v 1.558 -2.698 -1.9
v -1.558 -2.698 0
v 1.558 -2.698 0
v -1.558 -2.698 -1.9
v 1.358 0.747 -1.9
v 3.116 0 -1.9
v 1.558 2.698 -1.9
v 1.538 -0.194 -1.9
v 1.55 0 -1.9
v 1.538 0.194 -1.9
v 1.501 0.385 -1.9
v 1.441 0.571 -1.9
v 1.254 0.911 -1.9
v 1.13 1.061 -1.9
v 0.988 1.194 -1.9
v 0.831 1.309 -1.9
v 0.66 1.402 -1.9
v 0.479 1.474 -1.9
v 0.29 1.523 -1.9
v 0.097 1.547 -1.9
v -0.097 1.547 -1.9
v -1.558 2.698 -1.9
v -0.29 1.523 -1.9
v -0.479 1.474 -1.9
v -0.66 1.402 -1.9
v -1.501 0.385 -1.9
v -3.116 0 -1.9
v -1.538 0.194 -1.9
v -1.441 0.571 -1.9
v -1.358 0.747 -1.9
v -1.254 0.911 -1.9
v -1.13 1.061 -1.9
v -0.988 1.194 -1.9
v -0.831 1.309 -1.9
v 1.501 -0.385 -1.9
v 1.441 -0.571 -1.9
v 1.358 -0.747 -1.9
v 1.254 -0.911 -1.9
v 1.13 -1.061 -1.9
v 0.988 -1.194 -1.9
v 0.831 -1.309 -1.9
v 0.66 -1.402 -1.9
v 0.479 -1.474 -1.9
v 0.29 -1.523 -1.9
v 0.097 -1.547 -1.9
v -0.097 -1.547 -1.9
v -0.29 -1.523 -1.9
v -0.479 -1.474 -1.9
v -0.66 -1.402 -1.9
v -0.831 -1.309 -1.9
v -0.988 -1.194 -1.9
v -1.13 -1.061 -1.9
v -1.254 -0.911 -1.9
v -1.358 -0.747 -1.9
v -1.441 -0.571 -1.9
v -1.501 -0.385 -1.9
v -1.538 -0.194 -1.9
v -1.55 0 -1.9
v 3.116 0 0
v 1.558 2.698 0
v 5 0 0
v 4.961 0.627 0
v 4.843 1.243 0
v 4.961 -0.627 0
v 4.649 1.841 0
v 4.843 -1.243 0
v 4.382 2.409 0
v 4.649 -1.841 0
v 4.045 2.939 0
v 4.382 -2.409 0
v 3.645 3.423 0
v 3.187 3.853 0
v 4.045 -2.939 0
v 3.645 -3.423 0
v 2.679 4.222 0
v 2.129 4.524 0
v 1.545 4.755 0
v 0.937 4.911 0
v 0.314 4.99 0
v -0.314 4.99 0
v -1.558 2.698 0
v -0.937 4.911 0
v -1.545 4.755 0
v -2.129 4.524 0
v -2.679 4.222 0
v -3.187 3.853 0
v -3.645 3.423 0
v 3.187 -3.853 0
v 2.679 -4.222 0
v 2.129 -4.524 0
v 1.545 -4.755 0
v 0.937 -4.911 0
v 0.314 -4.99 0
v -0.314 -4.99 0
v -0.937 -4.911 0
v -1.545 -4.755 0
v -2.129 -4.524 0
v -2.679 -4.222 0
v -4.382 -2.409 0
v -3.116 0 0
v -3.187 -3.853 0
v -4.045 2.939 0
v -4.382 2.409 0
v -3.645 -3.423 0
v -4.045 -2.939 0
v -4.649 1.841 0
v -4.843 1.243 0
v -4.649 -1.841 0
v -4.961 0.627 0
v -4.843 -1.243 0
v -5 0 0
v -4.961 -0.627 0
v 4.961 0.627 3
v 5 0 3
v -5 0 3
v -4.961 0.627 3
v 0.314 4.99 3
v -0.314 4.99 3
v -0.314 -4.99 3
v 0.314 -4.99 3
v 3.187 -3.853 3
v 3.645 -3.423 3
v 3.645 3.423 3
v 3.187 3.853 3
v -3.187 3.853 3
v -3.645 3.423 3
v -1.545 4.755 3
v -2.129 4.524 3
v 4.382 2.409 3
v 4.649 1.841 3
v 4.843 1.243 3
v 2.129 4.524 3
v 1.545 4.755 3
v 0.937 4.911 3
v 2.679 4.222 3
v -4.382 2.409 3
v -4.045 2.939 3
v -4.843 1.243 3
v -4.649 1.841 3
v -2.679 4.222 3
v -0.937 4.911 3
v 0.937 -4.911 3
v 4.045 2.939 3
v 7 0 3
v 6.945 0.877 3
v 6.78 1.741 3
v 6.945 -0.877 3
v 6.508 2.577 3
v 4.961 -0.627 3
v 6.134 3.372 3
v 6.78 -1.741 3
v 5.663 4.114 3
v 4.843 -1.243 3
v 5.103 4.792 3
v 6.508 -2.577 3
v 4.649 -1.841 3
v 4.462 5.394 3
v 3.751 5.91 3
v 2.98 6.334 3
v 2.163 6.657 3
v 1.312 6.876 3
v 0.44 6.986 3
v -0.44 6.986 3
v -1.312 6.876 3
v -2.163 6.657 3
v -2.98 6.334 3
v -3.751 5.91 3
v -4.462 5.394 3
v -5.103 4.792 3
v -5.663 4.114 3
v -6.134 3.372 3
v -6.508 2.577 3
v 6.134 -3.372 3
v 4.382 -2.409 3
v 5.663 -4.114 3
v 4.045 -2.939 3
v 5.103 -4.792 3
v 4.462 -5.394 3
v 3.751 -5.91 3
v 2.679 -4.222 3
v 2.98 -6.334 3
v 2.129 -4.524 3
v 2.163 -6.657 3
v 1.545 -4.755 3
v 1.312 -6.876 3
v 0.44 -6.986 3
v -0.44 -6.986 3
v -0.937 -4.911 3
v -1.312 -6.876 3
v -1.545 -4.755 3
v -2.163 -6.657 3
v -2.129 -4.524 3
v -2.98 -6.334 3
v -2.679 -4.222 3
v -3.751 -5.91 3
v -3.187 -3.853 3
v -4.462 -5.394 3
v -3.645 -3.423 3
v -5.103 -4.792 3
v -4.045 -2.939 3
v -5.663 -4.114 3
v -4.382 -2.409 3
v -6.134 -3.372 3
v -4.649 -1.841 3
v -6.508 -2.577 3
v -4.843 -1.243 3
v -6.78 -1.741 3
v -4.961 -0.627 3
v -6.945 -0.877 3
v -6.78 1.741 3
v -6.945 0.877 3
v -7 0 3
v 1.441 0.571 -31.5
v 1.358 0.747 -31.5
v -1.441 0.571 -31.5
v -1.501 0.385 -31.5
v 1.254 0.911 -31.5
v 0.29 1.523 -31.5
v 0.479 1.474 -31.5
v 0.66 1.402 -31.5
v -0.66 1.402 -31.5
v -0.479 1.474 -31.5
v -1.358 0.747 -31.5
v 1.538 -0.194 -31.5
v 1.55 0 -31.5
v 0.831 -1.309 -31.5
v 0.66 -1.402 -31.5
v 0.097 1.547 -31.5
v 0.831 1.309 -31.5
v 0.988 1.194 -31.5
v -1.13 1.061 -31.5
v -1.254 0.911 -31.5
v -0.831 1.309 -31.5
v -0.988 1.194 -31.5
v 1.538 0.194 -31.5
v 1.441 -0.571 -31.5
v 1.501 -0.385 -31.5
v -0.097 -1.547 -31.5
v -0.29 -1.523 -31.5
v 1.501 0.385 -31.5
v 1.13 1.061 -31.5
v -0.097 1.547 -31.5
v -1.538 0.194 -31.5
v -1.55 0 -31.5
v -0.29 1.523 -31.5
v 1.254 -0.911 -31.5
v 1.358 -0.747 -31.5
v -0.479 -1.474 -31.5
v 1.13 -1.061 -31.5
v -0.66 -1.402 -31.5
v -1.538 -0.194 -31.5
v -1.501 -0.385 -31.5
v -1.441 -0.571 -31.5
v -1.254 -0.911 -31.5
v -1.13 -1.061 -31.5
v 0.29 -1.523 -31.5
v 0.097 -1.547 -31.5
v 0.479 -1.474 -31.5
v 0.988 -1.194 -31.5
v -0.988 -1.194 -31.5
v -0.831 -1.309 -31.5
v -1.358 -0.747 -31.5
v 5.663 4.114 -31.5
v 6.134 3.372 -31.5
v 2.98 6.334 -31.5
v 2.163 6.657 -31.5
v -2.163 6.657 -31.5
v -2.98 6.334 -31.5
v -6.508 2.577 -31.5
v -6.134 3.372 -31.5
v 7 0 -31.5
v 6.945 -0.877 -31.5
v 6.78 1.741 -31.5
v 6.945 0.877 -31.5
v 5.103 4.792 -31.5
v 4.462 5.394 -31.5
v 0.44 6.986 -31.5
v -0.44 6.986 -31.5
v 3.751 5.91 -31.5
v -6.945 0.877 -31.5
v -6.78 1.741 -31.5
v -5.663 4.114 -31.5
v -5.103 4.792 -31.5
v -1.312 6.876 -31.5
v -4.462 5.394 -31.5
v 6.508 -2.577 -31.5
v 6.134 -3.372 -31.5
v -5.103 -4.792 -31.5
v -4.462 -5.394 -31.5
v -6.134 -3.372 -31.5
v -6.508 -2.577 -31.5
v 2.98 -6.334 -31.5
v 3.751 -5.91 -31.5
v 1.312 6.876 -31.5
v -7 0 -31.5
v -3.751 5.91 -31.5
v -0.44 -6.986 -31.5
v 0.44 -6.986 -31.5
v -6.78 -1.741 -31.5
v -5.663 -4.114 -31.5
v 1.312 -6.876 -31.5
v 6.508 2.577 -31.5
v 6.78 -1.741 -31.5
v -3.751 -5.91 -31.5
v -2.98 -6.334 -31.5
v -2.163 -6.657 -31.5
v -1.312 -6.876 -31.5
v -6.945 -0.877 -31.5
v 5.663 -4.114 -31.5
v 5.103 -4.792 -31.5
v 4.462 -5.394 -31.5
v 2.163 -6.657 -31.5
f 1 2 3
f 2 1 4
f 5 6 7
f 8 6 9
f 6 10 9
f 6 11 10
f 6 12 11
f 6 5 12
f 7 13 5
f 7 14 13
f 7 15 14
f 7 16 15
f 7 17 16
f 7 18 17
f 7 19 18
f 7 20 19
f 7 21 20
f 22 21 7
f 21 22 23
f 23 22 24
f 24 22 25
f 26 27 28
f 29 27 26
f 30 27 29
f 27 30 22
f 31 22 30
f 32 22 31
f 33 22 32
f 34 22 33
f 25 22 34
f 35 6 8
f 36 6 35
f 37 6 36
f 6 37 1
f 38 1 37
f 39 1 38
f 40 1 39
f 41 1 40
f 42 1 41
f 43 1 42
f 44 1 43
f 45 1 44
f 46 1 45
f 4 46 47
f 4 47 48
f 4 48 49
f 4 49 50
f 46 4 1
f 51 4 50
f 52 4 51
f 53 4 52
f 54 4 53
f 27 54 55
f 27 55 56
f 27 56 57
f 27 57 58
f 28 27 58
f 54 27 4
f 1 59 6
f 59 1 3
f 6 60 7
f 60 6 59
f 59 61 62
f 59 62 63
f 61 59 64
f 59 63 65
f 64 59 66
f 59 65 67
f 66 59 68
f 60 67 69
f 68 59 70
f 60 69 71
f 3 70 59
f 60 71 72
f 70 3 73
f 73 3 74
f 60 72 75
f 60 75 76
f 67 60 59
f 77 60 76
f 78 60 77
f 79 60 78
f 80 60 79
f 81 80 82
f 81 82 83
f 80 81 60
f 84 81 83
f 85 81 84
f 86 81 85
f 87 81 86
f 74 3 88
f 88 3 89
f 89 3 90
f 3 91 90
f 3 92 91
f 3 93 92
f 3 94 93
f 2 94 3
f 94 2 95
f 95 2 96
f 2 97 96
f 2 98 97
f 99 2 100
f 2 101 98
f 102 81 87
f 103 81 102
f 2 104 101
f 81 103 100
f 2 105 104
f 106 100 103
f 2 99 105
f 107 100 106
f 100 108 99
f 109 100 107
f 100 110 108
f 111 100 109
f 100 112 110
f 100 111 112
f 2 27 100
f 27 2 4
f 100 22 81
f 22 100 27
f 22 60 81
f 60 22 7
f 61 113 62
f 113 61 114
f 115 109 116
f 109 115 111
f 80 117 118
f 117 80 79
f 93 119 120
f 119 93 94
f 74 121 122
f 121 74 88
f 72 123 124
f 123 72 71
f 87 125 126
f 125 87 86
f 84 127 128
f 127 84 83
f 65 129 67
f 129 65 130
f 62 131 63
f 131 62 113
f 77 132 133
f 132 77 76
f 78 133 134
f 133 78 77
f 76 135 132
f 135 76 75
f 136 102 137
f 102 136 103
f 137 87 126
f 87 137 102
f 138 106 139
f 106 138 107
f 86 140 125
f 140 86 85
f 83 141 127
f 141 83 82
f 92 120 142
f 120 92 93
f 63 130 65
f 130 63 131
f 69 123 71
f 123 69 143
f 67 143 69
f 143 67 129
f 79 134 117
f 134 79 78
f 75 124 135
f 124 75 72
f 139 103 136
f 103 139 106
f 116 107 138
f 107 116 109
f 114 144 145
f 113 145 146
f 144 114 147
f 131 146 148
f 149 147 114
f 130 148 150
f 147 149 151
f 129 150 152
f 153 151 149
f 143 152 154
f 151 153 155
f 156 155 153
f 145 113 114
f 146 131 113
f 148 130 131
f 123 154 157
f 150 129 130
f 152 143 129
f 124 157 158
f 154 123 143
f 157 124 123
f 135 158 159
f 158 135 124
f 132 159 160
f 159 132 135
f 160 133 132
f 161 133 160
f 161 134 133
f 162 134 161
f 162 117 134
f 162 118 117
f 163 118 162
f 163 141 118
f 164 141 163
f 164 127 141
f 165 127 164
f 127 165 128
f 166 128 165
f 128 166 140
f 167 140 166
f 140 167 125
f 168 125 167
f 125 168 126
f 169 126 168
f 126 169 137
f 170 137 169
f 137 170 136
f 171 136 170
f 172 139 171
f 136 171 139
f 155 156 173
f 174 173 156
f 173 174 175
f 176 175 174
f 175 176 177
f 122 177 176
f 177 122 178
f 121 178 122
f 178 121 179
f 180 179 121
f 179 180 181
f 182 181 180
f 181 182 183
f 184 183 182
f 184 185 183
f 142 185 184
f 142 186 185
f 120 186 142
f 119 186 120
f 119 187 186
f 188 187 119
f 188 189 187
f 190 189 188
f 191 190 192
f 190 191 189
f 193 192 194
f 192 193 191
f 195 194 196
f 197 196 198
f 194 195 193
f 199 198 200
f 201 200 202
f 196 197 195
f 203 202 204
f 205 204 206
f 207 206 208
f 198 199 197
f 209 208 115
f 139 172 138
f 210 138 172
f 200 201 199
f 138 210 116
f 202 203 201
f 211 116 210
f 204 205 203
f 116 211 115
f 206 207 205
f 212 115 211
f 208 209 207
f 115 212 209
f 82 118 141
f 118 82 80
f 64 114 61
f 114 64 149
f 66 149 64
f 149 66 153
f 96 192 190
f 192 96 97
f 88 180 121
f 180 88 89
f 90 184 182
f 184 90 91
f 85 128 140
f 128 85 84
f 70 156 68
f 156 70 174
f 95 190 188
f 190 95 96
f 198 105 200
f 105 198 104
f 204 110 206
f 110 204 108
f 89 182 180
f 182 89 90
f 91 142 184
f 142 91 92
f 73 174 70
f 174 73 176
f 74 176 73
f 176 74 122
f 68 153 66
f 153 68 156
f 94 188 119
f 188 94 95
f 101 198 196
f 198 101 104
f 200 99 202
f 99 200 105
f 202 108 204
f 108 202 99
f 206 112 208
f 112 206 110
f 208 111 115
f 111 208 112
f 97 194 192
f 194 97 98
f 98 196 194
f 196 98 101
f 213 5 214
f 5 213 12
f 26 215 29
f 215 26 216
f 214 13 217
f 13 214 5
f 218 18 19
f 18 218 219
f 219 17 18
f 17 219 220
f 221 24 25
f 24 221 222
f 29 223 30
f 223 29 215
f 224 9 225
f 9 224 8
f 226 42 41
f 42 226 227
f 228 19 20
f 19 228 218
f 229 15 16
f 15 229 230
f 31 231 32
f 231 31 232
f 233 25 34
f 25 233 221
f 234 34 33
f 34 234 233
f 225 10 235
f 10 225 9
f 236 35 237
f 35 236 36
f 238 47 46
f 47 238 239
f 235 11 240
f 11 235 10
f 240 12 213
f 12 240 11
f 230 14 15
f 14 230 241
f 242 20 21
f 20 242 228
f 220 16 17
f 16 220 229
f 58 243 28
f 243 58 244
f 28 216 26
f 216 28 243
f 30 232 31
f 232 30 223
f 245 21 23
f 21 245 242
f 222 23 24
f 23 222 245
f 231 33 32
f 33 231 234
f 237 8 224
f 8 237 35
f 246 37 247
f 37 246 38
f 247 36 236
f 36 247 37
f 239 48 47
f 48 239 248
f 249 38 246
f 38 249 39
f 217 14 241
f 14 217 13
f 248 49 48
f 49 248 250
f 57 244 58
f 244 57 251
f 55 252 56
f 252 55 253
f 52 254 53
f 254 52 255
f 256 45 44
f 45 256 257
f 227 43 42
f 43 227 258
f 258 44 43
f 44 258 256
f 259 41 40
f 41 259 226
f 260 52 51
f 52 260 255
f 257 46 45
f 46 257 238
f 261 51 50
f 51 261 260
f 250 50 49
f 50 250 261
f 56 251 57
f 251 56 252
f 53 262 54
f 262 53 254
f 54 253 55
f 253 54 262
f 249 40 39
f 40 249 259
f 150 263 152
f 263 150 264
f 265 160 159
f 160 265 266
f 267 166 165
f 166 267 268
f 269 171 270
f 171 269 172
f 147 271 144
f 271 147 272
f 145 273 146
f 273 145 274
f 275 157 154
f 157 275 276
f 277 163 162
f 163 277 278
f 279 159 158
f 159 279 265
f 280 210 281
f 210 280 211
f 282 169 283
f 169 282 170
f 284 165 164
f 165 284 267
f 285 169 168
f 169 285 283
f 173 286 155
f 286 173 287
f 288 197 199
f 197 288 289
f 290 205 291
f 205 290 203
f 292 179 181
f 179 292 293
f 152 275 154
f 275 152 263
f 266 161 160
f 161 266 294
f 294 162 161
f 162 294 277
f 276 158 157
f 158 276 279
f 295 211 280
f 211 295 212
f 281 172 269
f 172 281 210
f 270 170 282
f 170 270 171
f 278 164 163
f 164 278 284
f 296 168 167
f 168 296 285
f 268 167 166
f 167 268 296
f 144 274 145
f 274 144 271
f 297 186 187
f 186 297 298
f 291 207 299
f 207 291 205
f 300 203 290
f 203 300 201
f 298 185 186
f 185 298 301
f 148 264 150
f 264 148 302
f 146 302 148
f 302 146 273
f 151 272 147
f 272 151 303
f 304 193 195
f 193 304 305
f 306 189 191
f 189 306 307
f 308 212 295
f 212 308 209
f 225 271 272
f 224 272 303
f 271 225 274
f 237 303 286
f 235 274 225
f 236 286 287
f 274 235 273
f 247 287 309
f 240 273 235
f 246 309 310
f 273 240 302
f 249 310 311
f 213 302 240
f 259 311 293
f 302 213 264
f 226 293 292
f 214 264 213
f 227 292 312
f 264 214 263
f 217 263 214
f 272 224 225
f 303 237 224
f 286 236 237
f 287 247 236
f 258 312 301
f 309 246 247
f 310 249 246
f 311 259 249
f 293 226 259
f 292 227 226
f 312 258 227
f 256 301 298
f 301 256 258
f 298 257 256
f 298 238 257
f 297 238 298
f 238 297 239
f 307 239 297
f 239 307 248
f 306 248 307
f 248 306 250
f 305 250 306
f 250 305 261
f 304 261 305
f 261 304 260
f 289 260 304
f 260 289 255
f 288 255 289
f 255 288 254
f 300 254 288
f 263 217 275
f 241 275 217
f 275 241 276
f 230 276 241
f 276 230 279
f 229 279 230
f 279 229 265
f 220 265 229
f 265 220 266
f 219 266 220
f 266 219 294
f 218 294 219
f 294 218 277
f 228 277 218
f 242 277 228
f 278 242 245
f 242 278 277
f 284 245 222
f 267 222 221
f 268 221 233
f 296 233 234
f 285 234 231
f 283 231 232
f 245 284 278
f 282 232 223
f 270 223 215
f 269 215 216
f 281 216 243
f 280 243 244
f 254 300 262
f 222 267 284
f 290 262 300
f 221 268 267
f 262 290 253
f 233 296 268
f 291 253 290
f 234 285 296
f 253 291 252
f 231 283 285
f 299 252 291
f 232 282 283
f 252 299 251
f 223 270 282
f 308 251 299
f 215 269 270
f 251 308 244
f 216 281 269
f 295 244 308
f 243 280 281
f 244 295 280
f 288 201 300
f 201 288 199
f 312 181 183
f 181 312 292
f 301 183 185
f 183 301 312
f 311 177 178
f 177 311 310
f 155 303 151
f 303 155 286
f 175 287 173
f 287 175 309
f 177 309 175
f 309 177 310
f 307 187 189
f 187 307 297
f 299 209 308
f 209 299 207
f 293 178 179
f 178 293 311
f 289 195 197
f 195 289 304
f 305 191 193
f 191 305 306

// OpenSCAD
$fn = 50;

difference() {
	union() {
		translate(v = [0, 0, -31.5]) {
			cylinder(h = 34.5, r = 7.0);
		}
	}
	union() {
		translate(v = [0, 0, 0]) {
			rotate(a = [0, 0, 0]) {
				difference() {
					union() {
						translate(v = [0, 0, -1.9]) {
							linear_extrude(height = 1.9) {
								polygon(points = [[3.1158, 0.0], [1.5579000000000005, 2.698361953111554], [-1.5578999999999994, 2.6983619531115544], [-3.1158, 3.815754496783323e-16], [-1.5579000000000014, -2.6983619531115535], [1.557899999999998, -2.6983619531115552]]);
							}
						}
					}
					union();
				}
			}
		}
		#cylinder(h = 3, r = 5.0);
		#translate(v = [0, 0, -100.0]) {
			cylinder(h = 200, r = 1.55);
		}
	}
}
